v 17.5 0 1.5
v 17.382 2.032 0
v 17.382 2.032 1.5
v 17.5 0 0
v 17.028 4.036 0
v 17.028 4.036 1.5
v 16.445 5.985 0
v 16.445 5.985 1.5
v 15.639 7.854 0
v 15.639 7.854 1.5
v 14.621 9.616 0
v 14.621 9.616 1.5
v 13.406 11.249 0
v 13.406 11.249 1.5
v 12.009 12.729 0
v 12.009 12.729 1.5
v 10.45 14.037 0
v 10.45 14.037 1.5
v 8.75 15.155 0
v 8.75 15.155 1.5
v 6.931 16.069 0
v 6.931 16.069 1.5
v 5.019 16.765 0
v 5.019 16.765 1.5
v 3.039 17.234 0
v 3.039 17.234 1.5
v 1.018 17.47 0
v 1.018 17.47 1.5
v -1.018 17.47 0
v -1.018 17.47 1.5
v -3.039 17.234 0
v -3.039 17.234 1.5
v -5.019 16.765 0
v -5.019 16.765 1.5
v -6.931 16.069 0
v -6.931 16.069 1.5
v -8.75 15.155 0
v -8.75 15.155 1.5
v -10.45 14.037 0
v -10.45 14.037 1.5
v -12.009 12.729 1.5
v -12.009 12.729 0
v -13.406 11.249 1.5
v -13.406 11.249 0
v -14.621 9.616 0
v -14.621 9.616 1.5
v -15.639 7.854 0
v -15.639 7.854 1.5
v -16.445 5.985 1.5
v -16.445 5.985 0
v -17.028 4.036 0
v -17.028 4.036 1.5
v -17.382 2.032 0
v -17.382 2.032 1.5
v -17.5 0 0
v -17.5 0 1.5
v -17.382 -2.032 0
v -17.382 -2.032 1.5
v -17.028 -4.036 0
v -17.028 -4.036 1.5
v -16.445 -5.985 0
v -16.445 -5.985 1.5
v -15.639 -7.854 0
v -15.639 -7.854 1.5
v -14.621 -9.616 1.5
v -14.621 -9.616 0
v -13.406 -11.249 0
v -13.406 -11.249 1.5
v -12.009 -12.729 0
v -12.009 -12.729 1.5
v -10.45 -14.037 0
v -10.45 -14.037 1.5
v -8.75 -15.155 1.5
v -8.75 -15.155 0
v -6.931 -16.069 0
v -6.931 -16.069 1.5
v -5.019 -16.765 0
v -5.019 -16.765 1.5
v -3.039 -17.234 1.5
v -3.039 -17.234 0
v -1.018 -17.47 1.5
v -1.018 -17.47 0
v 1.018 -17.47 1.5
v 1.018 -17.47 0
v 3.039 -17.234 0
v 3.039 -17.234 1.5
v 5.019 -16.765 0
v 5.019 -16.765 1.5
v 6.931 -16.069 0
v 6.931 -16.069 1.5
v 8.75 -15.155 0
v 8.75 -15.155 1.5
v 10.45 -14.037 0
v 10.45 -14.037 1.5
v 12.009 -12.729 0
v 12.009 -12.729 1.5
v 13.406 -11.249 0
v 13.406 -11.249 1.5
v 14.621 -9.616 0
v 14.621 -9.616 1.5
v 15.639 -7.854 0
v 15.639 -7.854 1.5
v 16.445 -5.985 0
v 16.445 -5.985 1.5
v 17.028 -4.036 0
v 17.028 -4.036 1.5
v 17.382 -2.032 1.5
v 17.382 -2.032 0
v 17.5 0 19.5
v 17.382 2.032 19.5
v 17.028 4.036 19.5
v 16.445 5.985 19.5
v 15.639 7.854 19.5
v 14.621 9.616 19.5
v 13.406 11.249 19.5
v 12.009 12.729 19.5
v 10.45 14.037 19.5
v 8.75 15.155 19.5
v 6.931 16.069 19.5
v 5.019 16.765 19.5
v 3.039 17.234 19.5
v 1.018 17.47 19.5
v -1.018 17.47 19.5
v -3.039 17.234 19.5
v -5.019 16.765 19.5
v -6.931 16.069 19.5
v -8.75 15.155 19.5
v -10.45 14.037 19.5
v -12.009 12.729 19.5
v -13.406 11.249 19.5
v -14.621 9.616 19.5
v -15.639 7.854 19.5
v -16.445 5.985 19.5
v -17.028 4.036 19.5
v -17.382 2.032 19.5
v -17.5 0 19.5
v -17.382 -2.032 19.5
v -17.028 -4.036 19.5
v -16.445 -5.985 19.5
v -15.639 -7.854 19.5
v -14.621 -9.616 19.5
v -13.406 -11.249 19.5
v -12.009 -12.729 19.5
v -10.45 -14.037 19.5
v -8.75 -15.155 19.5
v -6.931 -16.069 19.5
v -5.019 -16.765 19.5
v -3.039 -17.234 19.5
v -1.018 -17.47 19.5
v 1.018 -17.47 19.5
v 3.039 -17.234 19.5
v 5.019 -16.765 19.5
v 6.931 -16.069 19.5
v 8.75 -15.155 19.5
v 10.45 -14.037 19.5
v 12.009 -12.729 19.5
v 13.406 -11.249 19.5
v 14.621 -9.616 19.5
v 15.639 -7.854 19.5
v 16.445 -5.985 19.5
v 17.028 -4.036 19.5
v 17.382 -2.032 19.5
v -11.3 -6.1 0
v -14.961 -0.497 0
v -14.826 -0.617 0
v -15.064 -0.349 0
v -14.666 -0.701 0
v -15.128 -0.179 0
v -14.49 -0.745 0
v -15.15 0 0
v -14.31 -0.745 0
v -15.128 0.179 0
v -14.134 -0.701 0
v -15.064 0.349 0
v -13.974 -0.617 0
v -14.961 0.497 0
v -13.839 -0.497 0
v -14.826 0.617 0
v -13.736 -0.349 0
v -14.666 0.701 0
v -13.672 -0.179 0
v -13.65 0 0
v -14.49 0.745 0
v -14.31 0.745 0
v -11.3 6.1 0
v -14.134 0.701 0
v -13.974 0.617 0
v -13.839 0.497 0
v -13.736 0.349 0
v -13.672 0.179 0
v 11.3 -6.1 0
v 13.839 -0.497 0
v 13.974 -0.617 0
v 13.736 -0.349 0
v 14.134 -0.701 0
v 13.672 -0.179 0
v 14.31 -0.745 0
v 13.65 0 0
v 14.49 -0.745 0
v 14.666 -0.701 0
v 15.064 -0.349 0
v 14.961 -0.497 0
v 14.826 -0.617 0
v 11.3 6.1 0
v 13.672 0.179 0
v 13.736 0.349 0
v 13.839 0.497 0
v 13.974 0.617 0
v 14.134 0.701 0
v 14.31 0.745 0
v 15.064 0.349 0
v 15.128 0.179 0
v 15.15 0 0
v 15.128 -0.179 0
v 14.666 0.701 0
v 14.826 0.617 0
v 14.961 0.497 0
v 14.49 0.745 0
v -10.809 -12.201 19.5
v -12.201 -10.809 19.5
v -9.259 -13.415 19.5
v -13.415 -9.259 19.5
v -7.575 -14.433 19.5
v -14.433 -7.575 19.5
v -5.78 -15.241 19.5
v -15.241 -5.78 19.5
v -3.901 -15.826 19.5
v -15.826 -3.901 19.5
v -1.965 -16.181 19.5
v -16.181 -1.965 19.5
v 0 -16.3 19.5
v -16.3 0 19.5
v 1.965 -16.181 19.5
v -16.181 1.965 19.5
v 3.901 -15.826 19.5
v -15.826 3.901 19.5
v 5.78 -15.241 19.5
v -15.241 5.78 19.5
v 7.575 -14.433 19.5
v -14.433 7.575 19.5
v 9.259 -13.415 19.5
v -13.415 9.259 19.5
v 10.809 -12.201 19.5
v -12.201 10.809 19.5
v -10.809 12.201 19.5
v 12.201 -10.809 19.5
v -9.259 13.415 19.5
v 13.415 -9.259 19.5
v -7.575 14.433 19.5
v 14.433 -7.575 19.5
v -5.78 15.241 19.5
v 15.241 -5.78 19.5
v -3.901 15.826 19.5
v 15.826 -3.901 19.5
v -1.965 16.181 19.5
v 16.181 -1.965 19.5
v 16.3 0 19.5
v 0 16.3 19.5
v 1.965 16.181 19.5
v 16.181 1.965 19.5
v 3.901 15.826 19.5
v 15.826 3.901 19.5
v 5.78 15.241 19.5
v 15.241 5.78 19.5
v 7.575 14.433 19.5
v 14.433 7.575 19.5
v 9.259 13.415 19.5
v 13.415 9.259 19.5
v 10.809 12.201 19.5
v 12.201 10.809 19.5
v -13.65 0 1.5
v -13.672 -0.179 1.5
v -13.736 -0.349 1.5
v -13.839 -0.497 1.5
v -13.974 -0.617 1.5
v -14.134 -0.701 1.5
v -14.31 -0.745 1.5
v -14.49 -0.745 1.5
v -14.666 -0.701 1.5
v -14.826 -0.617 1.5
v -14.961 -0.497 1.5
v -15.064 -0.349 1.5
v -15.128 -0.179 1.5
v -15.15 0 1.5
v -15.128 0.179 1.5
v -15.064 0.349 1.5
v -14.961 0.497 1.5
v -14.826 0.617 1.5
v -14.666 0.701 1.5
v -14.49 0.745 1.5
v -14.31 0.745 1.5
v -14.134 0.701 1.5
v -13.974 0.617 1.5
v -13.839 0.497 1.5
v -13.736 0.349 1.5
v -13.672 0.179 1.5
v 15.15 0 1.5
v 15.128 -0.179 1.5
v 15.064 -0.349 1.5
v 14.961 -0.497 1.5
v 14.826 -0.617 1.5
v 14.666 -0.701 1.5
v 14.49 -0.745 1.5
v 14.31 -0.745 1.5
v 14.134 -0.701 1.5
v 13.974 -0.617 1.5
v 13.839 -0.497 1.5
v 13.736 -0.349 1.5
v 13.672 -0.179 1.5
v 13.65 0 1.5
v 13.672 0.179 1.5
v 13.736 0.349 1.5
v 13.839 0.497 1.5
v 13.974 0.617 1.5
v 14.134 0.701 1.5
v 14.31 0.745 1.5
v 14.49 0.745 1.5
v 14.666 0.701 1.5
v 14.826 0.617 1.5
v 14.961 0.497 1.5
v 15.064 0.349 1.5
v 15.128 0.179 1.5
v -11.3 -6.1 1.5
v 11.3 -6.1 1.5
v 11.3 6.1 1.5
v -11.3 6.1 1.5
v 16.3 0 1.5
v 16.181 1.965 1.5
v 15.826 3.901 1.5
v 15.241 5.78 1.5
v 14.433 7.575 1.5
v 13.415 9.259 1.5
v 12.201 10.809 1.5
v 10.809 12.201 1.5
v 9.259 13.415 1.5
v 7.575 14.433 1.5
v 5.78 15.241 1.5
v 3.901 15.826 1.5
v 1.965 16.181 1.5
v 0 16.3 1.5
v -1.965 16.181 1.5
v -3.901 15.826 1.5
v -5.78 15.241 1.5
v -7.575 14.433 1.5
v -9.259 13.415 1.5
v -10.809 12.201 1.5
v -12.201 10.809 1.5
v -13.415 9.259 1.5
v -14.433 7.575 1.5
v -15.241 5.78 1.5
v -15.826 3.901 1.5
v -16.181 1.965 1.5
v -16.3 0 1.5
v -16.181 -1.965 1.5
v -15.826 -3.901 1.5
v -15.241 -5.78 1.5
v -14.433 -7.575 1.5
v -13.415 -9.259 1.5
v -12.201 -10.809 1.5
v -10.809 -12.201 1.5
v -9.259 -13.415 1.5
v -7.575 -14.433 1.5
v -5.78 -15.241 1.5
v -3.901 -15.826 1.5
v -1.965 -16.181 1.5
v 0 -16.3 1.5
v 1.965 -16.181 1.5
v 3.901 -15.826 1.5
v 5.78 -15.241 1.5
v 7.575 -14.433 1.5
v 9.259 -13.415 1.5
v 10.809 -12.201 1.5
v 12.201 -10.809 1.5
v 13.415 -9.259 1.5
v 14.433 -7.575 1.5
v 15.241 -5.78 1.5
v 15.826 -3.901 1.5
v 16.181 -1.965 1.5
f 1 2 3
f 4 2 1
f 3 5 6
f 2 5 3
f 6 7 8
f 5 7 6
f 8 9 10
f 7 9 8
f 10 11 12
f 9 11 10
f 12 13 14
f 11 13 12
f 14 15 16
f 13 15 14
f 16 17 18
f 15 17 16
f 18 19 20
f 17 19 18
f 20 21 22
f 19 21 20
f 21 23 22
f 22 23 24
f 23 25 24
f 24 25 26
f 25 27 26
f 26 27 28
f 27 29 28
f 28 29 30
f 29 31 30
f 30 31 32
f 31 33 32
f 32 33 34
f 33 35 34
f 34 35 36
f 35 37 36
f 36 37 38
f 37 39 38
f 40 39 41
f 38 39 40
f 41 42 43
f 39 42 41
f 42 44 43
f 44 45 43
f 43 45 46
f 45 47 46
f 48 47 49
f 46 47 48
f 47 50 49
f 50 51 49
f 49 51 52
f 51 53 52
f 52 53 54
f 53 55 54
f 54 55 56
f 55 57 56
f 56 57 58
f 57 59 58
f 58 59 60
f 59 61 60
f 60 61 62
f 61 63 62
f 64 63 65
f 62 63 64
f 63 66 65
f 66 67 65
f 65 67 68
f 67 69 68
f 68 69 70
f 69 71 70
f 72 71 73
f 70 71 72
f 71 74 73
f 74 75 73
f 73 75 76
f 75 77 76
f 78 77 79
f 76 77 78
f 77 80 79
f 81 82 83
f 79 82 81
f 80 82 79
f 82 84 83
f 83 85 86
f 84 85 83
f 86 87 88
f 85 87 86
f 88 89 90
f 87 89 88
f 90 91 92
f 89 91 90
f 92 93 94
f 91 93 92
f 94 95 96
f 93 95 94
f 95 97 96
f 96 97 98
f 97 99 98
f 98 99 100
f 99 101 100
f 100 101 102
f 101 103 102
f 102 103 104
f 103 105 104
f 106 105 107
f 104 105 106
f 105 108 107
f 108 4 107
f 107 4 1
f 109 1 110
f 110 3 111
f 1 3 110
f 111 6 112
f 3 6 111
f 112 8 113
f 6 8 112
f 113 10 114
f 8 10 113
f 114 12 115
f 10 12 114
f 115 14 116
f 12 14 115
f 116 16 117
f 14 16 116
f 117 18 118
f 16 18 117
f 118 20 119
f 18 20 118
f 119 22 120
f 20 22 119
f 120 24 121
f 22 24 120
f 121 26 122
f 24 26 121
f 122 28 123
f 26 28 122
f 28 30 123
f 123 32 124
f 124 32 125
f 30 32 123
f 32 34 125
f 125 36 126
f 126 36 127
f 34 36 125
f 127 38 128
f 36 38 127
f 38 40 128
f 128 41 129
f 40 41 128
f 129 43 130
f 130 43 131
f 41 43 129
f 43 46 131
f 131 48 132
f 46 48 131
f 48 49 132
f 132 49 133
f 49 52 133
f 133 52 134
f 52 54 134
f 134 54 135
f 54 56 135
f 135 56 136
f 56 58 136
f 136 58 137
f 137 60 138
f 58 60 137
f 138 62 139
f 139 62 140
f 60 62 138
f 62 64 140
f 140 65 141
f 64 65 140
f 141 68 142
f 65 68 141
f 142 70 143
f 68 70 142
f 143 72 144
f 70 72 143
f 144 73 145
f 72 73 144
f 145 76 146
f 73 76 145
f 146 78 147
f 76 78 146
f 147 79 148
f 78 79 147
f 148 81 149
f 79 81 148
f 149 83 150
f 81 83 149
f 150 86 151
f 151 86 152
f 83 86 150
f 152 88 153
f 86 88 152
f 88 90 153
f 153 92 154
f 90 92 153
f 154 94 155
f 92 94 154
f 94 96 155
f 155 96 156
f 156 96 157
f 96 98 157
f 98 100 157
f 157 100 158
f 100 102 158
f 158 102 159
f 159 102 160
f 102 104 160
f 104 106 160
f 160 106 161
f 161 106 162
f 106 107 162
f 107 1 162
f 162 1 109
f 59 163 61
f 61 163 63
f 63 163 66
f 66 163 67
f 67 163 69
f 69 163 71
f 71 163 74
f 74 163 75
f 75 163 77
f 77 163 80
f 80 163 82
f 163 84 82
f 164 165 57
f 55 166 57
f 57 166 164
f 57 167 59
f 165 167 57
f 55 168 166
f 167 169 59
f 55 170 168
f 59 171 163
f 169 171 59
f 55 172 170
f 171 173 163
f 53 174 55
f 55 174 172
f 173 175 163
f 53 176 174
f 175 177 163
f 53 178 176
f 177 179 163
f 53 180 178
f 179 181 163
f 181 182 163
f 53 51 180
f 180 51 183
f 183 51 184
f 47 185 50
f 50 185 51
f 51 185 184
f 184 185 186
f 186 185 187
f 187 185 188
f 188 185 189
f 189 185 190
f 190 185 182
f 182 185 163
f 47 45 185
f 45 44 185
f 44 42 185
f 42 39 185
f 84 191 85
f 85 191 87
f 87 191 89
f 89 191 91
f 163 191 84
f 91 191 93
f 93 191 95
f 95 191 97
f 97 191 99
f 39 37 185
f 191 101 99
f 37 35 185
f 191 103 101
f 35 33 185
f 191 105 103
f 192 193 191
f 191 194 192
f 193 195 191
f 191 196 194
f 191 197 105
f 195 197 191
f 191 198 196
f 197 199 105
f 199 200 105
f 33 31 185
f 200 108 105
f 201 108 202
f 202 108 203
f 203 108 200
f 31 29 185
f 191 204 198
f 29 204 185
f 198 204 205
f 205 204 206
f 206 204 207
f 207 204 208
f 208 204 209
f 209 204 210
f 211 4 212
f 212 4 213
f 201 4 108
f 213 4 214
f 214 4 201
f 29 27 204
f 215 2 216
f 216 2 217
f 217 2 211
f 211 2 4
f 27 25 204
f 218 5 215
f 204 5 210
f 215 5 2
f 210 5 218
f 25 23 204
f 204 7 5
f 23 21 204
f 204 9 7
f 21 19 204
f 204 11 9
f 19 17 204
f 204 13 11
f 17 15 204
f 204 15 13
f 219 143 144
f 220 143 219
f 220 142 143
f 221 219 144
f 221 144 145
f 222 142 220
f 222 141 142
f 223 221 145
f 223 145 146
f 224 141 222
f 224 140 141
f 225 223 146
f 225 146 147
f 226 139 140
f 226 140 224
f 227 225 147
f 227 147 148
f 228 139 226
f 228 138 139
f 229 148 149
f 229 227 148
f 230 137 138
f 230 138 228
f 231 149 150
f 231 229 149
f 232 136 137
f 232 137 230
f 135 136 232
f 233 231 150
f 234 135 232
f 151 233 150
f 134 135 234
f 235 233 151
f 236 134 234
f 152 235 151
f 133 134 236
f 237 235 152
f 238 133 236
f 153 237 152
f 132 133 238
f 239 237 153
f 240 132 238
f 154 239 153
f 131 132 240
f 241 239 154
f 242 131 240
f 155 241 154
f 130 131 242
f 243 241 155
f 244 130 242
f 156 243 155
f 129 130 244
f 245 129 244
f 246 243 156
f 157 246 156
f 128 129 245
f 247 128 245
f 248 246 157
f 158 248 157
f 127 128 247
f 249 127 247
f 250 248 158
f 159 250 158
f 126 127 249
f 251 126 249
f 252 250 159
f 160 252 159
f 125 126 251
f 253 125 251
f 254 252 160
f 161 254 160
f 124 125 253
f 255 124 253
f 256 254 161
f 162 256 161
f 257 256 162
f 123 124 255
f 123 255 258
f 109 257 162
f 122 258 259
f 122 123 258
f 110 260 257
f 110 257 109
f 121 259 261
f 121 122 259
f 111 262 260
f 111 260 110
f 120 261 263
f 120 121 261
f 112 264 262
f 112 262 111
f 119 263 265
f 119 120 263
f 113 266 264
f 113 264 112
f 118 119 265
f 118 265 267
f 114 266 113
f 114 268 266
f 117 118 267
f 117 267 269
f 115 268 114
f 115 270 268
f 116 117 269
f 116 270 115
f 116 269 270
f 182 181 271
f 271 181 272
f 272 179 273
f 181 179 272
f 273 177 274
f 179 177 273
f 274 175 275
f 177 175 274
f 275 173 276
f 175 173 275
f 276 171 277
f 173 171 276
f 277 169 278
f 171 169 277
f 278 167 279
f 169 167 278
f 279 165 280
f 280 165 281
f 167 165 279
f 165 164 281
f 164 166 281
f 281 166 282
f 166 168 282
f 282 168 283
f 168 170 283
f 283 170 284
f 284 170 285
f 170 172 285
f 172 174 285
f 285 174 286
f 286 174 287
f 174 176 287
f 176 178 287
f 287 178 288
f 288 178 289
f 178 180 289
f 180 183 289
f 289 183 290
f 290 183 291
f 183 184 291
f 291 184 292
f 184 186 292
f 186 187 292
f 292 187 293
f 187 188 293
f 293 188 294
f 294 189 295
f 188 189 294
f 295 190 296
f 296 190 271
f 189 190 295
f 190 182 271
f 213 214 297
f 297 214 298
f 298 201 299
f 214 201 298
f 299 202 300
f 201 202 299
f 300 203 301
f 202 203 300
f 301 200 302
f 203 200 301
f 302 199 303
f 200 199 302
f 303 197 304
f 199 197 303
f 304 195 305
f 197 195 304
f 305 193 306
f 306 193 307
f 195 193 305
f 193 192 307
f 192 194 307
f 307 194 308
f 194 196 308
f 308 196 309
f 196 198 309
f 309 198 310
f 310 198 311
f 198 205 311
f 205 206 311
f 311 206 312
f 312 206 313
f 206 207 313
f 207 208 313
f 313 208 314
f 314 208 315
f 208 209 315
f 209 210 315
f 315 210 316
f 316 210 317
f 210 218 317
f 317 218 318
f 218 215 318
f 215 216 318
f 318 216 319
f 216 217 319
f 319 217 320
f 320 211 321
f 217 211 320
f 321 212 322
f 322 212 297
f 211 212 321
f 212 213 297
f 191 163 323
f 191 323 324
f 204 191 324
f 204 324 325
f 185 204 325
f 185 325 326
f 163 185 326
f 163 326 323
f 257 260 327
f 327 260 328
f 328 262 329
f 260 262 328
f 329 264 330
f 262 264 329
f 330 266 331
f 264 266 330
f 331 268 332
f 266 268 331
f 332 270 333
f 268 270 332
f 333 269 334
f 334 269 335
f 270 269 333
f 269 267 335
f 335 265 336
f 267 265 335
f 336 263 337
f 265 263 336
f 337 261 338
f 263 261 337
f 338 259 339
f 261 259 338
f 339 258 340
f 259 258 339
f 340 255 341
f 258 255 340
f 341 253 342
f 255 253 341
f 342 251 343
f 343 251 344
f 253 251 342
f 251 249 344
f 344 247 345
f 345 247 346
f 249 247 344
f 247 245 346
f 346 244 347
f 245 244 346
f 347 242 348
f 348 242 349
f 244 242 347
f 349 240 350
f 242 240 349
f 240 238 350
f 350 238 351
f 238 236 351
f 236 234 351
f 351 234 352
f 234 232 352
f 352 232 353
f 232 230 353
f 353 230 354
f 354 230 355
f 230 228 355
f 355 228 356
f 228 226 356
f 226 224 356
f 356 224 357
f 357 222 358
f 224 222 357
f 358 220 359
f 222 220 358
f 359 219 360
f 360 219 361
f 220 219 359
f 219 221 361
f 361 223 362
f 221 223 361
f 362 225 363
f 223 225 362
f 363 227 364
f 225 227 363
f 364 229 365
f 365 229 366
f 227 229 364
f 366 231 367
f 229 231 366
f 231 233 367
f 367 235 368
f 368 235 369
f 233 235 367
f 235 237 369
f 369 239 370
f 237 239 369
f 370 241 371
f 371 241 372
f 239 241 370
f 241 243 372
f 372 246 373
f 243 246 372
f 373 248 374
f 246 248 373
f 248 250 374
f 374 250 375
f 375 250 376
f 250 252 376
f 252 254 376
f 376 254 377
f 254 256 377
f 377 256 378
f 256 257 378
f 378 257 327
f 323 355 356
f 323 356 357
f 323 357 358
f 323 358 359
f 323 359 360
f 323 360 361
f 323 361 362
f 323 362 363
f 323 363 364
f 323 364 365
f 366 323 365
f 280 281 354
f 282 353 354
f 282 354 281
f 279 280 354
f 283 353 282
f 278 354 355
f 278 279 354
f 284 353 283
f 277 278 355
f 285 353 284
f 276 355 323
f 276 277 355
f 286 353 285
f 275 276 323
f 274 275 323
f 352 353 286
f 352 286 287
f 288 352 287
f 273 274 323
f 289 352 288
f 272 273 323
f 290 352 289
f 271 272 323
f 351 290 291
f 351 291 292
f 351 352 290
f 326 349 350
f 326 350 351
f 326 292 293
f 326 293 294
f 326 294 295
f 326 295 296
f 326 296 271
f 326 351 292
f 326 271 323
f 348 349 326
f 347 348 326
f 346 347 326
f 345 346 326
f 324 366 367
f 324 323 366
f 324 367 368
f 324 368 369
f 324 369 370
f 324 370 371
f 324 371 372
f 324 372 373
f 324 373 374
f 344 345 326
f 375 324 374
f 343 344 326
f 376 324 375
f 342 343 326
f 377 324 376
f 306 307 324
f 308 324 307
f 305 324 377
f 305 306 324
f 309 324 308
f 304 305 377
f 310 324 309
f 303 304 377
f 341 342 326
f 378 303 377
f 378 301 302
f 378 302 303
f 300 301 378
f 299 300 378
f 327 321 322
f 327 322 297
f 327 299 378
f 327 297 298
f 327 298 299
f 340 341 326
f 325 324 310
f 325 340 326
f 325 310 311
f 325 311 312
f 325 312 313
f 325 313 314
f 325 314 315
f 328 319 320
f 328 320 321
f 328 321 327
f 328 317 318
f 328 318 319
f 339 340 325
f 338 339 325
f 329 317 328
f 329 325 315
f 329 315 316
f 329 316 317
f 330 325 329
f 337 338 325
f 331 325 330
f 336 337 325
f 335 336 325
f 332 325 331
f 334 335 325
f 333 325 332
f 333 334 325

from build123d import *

# Parameters (mm, degrees)
SKETCH_R        = 17.5
PAD_DEPTH       = 20
SKETCH001_R     = 32
POCKET_DEPTH    = 18.5
SKETCH002_R     = 0.75
SKETCH002_W     = 22.6
SKETCH002_H     = 12.2
POCKET001_DEPTH = 5
SKETCH005_R     = 17.5
PAD001_DEPTH    = 18
SKETCH006_R     = 16.3
POCKET002_DEPTH = 18


with BuildPart() as part:
    # Sketch → Pad (new body)
    with BuildSketch(Plane.XY):
        Circle(SKETCH_R)
    extrude(amount=PAD_DEPTH)

    # Sketch001 (on Face3 of Pad) → Pocket (cut)
    with BuildSketch(Plane.XY.offset(20)):
        Circle(SKETCH001_R)
    extrude(amount=-POCKET_DEPTH, mode=Mode.SUBTRACT)

    # Sketch002 (on Face2 of Pocket) → Pocket001 (cut)
    with BuildSketch(Plane(origin=(0, 0, 0), x_dir=(1, 0, 0), z_dir=(0, 0, -1))):
        with Locations((-14.4, 0)):
            Circle(SKETCH002_R)
        with Locations((14.4, 0)):
            Circle(SKETCH002_R)
        Rectangle(SKETCH002_W, SKETCH002_H)
    extrude(amount=-POCKET001_DEPTH, mode=Mode.SUBTRACT)

    # Sketch005 (on Face3 of Pocket001) → Pad001 (join)
    with BuildSketch(Plane.XY.offset(1.5)):
        Circle(SKETCH005_R)
    extrude(amount=PAD001_DEPTH)

    # Sketch006 (on Face4 of Pad001) → Pocket002 (cut)
    with BuildSketch(Plane.XY.offset(19.5)):
        Circle(SKETCH006_R)
    extrude(amount=-POCKET002_DEPTH, mode=Mode.SUBTRACT)


solid = part.part
